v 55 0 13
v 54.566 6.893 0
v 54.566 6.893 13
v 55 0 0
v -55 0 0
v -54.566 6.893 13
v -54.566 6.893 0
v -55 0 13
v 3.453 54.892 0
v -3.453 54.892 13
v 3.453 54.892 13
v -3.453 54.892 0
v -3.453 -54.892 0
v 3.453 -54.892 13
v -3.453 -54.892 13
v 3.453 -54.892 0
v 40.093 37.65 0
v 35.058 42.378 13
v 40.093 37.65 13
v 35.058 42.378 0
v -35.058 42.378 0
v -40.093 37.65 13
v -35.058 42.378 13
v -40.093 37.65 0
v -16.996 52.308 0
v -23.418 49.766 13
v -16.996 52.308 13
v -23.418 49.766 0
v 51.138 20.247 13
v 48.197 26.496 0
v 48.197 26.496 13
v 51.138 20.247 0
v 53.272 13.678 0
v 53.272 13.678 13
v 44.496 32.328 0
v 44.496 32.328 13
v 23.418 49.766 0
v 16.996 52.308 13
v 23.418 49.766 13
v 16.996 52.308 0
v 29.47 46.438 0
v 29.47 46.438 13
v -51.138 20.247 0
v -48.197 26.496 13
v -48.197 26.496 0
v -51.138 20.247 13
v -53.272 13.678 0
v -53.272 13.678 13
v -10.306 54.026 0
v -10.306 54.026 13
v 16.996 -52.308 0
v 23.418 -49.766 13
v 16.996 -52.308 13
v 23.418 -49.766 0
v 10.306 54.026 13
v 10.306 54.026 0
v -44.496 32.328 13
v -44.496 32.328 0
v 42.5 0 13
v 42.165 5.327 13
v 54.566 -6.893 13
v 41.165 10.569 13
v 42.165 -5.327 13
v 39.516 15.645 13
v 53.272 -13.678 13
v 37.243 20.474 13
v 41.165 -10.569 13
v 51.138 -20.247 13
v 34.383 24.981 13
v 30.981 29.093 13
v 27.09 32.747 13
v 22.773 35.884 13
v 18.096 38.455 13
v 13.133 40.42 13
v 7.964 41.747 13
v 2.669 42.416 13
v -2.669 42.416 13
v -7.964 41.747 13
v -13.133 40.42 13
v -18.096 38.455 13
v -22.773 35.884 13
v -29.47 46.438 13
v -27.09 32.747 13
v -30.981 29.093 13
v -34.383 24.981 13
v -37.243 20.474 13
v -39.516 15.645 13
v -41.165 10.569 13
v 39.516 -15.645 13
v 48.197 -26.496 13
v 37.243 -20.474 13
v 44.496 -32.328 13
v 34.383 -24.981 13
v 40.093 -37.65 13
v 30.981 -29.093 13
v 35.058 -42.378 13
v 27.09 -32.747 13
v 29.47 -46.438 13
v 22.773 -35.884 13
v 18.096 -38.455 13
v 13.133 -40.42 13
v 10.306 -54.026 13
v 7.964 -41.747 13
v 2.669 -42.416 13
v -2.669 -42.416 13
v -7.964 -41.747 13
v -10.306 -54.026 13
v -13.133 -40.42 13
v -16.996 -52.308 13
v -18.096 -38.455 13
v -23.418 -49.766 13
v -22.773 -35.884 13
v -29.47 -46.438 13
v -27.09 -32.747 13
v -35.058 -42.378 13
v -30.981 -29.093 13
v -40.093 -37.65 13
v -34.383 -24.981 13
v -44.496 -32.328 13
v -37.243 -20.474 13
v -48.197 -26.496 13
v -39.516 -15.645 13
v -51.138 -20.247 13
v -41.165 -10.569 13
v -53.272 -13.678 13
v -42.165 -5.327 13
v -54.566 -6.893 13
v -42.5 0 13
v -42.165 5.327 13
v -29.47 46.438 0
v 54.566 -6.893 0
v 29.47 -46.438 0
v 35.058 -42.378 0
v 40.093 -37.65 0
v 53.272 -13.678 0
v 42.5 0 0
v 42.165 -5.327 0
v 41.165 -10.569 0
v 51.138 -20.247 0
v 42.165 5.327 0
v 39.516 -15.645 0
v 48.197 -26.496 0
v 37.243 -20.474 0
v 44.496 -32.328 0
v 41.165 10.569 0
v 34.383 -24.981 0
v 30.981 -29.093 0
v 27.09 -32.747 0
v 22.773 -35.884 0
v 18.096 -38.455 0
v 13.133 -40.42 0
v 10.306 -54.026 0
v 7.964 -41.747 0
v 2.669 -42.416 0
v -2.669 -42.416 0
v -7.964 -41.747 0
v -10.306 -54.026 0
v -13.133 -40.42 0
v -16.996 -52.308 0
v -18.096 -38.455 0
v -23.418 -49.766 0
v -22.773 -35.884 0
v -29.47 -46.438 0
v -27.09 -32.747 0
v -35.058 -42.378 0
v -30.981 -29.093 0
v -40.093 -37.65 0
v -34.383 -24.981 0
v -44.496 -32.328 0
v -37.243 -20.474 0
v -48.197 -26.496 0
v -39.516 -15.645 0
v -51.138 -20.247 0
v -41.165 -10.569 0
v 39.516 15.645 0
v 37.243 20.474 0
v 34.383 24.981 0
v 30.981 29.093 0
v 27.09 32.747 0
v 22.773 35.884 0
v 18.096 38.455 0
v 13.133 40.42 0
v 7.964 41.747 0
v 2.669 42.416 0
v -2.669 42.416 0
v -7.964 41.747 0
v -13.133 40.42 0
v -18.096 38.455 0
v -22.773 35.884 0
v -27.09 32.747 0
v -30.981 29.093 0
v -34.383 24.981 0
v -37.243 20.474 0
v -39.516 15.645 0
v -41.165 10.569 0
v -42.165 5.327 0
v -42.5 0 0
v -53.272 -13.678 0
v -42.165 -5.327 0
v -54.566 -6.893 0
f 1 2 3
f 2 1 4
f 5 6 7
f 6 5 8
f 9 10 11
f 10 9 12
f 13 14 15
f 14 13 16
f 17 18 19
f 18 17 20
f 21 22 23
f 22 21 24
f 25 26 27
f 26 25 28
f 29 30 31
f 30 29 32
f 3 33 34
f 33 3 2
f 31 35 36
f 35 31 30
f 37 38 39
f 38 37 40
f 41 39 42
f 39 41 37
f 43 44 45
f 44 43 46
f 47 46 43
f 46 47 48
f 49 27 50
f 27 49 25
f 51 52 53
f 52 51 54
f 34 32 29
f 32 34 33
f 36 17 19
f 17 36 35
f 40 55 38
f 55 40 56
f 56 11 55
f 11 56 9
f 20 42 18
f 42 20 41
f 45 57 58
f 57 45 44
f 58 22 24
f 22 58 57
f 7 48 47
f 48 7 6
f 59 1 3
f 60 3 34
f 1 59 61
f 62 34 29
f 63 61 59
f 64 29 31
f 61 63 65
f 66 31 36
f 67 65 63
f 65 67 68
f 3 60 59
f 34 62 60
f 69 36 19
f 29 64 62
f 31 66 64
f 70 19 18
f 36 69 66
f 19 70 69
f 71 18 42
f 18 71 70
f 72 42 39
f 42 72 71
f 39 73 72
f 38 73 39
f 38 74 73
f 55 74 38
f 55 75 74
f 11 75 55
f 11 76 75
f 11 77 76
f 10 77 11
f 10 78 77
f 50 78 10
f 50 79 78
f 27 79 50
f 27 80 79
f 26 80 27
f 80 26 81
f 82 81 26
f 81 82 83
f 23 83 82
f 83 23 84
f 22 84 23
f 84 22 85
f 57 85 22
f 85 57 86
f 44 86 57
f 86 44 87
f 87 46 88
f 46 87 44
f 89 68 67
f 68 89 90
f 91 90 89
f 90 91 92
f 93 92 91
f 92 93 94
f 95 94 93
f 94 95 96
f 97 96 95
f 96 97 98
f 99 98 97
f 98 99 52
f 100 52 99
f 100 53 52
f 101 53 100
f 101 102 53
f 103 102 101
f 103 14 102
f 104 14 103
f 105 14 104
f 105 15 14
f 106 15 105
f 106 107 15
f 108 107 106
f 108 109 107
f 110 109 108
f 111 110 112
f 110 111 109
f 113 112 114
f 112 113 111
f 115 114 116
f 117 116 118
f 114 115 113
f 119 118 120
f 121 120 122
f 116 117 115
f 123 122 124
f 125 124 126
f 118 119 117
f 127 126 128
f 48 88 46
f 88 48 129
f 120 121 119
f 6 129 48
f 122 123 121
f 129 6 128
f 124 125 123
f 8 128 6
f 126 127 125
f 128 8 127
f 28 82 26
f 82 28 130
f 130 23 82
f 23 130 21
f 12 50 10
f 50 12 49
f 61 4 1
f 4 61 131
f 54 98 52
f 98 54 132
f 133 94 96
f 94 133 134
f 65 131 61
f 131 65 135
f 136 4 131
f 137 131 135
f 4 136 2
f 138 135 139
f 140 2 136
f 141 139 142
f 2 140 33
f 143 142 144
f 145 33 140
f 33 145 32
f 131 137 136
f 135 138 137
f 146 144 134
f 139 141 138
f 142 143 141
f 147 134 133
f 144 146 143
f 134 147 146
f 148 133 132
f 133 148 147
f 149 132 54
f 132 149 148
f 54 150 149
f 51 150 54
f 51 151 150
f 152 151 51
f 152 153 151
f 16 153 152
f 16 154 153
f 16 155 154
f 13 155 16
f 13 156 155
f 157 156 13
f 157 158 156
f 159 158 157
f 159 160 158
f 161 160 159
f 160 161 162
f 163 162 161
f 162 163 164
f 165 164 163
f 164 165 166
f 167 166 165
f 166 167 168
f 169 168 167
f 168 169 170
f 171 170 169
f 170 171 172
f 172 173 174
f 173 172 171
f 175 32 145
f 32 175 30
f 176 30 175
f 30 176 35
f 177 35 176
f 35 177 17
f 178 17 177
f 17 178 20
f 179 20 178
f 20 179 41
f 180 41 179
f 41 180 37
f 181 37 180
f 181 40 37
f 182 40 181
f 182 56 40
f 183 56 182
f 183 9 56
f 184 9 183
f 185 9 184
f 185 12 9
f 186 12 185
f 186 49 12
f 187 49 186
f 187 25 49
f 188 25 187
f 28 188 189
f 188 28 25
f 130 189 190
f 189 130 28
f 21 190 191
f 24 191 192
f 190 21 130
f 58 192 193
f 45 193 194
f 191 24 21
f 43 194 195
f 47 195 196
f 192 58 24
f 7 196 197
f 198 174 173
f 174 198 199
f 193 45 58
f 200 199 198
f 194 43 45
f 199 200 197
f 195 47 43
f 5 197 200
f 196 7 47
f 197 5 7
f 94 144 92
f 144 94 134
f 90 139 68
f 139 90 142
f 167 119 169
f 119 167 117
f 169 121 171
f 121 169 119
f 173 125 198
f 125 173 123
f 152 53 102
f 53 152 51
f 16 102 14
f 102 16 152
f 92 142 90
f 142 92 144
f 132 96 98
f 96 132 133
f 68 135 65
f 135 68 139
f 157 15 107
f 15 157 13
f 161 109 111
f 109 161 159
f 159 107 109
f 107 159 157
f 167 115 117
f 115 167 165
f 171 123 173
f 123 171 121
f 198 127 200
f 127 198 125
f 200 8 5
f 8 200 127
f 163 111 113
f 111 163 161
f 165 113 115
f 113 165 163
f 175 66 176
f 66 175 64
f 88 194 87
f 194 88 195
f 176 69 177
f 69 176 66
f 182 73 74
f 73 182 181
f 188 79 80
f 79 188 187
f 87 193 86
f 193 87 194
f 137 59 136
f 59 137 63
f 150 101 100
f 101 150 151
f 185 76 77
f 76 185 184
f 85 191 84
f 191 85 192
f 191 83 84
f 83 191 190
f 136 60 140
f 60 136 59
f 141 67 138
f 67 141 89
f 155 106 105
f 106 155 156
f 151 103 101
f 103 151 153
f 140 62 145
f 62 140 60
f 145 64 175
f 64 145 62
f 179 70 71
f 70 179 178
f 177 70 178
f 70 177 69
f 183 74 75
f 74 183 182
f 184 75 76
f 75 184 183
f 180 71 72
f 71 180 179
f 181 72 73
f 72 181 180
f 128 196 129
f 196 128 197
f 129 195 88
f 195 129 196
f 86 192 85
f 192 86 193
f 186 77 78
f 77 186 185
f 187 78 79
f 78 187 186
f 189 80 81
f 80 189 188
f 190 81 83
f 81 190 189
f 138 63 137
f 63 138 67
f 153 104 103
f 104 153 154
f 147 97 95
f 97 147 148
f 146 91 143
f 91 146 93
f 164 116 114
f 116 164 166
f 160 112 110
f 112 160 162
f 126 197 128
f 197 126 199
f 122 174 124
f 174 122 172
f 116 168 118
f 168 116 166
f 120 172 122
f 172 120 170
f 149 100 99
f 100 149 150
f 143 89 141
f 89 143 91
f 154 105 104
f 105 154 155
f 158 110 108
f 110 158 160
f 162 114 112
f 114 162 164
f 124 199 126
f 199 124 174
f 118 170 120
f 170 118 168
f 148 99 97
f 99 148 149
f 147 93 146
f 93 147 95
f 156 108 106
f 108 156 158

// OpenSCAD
$fn = 50;


difference() {
	union() {
		cylinder(h = 13, r = 55.0000000000);
	}
	union() {
		cylinder(h = 13, r = 42.5000000000);
	}
}
